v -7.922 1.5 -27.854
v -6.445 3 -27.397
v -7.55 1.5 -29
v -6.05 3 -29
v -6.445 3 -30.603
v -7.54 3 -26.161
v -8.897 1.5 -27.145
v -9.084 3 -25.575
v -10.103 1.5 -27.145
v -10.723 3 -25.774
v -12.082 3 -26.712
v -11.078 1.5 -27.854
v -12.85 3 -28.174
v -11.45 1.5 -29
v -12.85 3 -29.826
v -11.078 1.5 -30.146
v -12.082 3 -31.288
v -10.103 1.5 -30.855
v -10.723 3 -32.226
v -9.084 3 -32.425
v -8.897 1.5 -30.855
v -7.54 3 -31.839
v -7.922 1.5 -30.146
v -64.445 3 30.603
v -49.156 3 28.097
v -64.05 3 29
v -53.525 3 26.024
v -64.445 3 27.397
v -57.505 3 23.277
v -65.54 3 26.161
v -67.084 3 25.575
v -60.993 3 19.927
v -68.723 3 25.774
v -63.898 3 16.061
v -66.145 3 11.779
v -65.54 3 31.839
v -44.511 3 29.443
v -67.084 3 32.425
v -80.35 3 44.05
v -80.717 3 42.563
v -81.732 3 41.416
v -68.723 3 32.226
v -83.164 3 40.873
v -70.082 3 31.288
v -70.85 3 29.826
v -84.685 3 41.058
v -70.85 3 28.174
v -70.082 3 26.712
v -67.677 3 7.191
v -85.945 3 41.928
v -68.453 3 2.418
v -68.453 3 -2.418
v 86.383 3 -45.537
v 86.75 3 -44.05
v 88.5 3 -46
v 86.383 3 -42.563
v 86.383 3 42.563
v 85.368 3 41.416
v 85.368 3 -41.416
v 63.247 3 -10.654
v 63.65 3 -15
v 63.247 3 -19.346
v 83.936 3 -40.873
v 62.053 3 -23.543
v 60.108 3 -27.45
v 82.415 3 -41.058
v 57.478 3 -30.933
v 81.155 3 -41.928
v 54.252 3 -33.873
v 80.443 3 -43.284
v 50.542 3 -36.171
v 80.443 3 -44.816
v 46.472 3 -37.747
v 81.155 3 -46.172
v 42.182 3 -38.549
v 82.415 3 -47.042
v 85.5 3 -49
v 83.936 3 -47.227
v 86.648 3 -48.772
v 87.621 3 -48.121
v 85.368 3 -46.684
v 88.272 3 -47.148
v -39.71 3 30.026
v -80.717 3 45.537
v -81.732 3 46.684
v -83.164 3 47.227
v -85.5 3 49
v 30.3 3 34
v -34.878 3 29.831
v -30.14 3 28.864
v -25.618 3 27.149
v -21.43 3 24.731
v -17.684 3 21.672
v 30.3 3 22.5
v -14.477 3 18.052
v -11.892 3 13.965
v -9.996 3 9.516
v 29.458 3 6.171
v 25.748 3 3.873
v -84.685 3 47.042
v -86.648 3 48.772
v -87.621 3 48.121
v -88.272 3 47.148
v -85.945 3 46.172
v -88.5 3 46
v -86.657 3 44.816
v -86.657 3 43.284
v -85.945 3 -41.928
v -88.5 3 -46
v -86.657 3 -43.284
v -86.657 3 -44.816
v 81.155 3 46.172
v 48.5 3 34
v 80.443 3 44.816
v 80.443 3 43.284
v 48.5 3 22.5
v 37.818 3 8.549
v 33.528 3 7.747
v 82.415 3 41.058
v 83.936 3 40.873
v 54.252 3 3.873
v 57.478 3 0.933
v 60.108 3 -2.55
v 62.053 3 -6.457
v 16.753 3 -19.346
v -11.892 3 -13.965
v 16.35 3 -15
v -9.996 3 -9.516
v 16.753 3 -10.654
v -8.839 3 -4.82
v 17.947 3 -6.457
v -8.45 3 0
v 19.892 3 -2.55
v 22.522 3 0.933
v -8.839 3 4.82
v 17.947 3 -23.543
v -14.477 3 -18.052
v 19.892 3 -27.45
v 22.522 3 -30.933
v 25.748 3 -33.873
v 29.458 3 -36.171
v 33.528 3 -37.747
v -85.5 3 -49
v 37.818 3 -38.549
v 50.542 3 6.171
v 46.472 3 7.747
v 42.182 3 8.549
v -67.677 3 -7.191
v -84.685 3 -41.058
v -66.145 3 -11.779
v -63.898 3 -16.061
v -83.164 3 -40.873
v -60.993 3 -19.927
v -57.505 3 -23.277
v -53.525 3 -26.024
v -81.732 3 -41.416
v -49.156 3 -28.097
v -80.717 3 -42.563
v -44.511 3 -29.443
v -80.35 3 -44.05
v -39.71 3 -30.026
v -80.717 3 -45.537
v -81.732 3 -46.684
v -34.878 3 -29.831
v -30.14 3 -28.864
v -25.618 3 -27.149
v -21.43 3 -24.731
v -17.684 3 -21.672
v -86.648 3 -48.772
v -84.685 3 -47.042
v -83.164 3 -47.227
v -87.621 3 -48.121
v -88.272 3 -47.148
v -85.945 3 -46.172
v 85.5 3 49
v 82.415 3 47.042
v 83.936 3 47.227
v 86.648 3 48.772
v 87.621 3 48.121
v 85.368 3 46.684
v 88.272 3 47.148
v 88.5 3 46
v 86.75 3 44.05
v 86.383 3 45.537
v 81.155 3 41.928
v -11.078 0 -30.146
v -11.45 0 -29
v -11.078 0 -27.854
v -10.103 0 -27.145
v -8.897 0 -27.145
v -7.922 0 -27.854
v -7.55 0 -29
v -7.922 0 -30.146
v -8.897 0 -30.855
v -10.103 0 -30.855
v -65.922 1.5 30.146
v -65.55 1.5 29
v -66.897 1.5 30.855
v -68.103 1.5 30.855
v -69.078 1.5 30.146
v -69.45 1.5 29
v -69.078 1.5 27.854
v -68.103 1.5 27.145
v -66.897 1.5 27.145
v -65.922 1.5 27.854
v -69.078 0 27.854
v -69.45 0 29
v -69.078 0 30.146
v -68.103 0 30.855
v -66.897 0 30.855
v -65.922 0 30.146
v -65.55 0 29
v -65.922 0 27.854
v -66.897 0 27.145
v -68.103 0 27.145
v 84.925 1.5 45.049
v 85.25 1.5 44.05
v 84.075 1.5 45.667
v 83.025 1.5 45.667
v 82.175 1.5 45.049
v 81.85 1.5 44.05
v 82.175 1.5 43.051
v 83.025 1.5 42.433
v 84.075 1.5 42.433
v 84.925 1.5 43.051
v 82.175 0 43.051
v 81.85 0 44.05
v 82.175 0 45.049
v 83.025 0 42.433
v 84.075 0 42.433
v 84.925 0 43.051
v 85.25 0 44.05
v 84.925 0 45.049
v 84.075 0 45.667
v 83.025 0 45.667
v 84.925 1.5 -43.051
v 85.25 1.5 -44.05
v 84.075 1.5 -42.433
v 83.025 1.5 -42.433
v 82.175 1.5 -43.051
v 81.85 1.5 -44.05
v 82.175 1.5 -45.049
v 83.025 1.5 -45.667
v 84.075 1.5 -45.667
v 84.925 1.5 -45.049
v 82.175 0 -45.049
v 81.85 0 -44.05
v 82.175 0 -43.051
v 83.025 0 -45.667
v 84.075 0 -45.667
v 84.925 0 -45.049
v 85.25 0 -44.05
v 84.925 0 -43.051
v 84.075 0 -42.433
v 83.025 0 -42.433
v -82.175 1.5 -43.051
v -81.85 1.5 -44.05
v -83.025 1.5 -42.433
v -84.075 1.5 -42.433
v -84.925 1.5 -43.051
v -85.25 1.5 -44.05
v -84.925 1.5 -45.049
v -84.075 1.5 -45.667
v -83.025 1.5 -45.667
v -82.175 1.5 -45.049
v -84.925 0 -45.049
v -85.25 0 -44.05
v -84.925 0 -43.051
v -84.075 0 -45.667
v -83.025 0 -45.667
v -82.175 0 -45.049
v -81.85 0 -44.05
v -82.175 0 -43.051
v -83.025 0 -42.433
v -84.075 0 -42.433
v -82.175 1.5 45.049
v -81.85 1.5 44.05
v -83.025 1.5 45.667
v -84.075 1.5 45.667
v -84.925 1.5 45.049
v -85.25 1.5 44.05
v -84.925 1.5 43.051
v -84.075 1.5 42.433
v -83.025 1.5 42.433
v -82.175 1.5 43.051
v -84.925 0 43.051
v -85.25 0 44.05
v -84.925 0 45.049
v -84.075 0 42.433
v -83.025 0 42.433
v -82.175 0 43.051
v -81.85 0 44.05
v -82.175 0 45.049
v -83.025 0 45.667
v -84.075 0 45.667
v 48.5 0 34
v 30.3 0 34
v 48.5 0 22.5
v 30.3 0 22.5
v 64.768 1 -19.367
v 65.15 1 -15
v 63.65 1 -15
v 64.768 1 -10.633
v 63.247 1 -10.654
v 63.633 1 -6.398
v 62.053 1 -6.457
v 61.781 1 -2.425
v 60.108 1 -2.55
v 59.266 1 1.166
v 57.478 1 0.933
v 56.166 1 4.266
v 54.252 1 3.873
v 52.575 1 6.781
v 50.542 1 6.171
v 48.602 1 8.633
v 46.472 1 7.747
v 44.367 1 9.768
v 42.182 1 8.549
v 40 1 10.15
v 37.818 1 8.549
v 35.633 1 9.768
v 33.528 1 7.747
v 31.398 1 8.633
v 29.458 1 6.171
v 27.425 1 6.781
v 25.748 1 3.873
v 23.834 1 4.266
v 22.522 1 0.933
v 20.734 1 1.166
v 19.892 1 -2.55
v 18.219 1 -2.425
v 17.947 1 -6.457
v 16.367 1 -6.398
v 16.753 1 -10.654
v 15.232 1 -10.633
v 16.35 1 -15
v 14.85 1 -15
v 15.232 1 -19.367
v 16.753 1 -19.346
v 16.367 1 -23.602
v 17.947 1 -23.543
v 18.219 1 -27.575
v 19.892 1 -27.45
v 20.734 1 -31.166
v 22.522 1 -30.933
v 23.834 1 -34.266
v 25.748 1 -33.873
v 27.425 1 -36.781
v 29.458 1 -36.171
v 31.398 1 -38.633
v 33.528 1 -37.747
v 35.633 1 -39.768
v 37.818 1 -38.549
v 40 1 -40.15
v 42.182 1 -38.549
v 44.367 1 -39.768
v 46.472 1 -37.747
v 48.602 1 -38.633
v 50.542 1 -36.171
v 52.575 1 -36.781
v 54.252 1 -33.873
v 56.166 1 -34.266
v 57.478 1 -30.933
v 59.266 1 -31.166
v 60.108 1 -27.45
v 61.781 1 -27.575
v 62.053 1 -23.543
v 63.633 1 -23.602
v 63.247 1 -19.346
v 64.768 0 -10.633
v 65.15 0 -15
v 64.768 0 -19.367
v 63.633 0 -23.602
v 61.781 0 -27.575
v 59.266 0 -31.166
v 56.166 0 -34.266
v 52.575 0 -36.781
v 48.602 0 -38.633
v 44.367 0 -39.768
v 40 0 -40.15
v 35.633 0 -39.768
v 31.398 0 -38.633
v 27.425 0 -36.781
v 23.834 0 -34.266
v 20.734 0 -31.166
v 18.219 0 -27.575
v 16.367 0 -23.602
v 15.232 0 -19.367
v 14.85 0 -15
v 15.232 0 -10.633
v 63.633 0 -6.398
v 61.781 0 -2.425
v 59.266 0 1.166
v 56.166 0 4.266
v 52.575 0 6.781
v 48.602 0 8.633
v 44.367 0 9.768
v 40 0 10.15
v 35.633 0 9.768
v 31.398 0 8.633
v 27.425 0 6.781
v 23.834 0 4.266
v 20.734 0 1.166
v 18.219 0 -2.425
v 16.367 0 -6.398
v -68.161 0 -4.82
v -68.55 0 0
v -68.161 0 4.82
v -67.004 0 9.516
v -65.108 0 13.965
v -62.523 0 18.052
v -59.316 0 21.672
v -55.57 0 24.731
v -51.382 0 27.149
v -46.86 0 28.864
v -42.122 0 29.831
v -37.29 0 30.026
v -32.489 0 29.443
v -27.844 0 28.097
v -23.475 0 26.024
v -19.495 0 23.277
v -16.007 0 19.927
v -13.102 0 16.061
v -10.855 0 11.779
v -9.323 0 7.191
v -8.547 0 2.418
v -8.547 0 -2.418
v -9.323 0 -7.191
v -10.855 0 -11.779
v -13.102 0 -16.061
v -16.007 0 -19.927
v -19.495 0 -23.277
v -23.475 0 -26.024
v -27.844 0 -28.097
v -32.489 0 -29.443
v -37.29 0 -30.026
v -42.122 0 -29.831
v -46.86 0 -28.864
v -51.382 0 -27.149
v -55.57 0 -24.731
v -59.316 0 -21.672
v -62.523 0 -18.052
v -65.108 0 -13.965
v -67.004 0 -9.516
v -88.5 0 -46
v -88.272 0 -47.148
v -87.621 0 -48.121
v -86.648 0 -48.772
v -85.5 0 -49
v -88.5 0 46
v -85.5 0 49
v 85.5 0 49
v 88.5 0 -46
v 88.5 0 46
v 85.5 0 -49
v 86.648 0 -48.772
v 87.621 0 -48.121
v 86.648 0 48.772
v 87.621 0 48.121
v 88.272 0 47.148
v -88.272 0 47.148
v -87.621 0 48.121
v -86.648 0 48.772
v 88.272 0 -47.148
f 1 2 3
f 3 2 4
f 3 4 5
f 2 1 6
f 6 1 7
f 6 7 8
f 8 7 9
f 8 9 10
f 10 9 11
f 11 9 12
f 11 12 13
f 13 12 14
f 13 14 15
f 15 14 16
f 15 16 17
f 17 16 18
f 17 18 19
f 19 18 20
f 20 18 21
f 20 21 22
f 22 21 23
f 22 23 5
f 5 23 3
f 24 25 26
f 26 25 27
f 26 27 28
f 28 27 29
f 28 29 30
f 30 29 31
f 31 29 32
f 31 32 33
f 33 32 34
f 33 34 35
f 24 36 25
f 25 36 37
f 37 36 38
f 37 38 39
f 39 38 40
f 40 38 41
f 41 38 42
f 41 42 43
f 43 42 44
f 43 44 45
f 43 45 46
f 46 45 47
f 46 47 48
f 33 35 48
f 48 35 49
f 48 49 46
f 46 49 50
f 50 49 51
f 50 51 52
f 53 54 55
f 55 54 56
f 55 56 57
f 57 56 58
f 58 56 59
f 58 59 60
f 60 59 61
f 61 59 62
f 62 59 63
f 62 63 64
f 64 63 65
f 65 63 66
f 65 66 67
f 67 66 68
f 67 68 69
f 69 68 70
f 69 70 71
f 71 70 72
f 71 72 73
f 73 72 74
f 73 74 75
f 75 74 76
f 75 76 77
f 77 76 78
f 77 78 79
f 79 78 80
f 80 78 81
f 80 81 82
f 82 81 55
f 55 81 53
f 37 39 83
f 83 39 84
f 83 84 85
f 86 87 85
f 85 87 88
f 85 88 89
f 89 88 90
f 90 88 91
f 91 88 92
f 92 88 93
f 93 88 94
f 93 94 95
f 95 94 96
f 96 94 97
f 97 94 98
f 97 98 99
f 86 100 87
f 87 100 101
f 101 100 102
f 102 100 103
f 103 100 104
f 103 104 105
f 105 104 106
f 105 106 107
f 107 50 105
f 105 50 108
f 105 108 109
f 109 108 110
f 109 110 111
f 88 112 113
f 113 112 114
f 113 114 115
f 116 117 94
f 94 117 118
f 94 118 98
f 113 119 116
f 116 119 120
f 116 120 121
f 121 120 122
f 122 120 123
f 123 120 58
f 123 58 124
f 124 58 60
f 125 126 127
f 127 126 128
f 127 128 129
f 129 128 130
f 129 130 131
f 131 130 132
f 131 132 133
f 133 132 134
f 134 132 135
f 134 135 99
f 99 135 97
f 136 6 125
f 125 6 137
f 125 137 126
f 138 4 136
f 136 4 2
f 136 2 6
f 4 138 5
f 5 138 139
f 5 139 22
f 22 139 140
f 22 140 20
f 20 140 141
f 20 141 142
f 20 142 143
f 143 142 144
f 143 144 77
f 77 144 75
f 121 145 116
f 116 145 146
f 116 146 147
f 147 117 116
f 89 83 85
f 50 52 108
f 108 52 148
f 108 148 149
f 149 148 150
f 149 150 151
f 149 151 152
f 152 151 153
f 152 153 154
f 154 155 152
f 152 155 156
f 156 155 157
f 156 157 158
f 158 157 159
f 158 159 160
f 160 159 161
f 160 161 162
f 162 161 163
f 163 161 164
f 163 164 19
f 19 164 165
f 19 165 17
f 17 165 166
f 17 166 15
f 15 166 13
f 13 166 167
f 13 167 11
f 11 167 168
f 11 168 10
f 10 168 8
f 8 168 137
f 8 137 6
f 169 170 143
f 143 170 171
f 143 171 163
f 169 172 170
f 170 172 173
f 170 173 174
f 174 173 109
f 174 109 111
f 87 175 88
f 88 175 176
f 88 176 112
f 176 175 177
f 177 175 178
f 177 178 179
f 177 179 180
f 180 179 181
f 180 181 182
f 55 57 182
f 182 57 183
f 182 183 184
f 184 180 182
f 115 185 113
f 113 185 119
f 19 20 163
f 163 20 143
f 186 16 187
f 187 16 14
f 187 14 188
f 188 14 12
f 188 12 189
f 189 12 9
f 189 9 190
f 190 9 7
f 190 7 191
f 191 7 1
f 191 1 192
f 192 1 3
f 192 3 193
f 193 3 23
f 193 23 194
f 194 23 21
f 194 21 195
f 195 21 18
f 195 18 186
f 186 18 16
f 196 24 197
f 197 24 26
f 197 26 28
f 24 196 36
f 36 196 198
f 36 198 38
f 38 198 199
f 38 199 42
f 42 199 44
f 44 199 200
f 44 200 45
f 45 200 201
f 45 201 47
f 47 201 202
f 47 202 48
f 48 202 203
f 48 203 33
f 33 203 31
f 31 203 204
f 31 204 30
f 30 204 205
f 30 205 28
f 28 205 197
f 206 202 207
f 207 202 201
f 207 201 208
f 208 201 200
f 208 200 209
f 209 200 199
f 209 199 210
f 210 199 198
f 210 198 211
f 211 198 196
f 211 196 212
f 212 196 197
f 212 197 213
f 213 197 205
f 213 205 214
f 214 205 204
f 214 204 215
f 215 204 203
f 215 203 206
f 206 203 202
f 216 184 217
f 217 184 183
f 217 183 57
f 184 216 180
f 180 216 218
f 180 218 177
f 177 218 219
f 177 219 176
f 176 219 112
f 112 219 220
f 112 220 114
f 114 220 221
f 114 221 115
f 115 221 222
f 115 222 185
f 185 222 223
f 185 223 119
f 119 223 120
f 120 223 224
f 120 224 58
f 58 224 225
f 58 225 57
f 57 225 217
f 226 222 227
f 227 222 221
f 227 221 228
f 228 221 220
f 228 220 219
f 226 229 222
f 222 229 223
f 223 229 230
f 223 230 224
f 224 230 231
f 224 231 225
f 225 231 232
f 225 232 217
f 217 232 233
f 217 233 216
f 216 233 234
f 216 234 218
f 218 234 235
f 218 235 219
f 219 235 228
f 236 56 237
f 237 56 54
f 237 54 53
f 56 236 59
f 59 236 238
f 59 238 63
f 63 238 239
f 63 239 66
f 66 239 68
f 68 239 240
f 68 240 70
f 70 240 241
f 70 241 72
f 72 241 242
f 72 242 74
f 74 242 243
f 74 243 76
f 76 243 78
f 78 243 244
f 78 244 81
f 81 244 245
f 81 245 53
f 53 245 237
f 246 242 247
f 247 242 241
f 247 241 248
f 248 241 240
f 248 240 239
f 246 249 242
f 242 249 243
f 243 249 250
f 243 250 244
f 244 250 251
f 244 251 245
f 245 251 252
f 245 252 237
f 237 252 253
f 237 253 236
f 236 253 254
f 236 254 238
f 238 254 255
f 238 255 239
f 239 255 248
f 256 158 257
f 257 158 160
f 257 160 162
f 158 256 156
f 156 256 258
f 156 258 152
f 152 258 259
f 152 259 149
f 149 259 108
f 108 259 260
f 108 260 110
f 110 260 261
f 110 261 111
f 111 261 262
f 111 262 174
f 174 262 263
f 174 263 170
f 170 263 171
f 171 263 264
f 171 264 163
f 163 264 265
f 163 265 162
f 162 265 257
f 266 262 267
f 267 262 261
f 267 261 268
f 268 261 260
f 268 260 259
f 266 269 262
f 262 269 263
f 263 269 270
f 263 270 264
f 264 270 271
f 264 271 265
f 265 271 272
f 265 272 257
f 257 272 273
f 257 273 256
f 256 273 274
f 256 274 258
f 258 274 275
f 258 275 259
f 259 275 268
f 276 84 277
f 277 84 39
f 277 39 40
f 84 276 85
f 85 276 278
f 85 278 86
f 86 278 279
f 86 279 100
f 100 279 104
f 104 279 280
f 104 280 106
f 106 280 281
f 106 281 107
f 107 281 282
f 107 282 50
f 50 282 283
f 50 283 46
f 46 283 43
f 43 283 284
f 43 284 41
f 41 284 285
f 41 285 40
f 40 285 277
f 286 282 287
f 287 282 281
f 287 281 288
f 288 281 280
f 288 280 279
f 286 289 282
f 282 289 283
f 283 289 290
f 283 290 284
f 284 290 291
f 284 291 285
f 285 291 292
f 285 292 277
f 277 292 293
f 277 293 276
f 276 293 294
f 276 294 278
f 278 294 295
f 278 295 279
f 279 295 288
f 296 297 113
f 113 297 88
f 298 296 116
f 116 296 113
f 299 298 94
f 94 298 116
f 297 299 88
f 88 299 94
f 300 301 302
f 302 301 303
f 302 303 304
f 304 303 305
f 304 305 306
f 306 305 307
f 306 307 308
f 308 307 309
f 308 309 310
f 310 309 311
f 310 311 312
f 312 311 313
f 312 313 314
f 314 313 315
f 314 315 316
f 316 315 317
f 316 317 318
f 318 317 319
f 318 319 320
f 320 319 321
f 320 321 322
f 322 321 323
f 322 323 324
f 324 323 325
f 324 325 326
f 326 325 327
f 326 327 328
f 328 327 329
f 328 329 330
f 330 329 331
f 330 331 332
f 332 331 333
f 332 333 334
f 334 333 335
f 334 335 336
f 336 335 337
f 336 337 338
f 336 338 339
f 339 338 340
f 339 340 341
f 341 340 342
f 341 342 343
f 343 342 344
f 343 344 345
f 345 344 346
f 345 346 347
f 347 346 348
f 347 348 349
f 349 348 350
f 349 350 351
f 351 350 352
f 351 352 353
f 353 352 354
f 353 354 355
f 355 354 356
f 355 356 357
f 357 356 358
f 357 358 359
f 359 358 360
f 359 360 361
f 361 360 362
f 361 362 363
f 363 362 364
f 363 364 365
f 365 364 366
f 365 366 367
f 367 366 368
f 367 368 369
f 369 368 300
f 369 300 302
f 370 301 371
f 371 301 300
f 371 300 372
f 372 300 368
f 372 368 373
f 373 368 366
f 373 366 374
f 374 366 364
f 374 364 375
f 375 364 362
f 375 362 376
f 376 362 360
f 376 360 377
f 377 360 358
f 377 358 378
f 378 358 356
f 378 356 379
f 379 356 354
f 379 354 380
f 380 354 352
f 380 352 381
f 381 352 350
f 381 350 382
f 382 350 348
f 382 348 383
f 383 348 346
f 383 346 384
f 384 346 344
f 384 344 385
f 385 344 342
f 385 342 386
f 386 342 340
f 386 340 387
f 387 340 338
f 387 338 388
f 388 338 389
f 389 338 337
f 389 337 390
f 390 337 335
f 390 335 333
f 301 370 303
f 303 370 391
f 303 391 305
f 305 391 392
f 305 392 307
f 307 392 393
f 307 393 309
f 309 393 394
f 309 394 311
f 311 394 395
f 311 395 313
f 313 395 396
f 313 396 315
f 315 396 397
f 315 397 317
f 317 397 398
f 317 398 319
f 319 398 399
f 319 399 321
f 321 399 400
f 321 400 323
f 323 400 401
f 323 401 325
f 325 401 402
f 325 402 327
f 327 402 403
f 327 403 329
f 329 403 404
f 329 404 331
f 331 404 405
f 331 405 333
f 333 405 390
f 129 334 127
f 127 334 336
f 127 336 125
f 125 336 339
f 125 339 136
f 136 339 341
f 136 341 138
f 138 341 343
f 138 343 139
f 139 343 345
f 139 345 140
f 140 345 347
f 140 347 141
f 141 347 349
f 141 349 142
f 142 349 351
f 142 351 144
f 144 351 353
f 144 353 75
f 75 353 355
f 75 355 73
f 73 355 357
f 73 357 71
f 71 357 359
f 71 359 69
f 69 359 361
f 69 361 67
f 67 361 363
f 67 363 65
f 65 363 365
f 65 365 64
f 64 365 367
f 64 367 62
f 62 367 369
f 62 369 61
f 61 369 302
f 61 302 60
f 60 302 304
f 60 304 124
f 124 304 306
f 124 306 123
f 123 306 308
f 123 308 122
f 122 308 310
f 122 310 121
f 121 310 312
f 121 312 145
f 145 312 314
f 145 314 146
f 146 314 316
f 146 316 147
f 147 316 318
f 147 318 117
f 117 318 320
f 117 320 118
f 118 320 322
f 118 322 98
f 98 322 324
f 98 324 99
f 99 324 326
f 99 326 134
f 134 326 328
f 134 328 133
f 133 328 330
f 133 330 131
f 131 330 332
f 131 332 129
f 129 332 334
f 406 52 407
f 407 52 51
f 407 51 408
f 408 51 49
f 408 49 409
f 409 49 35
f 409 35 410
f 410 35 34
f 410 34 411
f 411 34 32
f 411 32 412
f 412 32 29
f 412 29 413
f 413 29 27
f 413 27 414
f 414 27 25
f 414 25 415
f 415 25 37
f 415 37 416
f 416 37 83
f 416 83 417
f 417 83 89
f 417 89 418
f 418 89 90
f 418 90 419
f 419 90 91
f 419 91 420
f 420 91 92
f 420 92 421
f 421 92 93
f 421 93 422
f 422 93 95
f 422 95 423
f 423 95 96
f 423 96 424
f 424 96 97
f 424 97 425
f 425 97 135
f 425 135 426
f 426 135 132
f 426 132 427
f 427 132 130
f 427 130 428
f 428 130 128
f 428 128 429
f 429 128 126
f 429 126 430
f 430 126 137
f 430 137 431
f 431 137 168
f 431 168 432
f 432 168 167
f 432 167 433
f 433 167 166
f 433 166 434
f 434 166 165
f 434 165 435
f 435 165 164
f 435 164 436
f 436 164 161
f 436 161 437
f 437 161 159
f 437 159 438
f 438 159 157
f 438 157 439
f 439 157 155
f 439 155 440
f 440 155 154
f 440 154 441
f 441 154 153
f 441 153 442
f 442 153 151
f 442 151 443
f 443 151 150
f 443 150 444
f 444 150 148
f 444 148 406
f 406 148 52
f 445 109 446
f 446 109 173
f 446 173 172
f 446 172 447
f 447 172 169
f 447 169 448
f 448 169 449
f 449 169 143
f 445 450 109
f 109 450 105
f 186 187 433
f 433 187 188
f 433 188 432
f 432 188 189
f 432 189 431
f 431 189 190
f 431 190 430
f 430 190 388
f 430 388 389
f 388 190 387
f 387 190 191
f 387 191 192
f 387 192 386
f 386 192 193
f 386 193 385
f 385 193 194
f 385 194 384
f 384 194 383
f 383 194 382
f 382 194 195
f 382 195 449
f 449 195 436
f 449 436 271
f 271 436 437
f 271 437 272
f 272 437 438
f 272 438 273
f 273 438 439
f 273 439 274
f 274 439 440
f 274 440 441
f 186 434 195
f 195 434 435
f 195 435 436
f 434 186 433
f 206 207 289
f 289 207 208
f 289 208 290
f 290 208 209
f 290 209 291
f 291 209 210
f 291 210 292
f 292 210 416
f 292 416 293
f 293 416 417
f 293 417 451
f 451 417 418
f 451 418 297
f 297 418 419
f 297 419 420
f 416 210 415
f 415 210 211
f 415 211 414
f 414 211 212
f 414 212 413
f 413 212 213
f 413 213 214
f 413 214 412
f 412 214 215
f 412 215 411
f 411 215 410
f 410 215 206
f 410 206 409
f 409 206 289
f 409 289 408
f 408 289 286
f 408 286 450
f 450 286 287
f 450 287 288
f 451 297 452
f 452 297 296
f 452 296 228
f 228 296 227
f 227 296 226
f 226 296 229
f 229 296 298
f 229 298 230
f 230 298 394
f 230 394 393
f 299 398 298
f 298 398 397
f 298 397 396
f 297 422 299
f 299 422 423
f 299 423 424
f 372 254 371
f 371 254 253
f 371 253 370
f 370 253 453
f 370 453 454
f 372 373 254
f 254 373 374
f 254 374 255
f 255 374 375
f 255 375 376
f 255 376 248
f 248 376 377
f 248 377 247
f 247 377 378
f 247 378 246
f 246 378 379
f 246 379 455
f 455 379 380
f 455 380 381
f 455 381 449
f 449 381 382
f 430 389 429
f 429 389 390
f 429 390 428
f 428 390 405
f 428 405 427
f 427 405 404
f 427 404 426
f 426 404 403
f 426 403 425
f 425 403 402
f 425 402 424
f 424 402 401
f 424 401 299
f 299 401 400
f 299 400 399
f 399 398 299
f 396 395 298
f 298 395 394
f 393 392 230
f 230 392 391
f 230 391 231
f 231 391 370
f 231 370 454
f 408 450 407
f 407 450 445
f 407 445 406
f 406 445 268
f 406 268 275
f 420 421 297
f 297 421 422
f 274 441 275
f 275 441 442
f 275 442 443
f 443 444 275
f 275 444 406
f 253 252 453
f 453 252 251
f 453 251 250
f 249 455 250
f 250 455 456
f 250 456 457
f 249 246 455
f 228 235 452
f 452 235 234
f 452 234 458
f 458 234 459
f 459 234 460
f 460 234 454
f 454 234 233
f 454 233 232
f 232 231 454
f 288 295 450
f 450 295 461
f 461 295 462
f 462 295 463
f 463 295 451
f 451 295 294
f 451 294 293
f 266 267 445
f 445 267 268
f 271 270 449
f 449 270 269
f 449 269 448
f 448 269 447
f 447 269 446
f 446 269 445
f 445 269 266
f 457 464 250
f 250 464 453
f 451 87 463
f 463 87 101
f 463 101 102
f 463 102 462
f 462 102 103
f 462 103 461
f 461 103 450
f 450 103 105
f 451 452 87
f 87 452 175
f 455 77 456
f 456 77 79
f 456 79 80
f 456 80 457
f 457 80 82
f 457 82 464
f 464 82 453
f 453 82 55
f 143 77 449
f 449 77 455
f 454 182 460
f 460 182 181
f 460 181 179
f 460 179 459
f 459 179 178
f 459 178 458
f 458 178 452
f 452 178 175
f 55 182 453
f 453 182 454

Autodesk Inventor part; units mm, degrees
ref_plane "YZ Plane" through (0, 0, 0) normal (1, 0, 0) x (0, 1, 0)
ref_plane "XZ Plane" through (0, 0, 0) normal (0, 1, 0) x (-1, 0, 0)
ref_plane "XY Plane" through (0, 0, 0) normal (0, 0, 1) x (1, 0, 0)
sketch "Náčrt1" plane through (0, 0, 0) normal (0, 1, 0) x (-1, 0, 0)
  line L0 (0, -68.6) -> (0, 68.6) projected
  line L1 (-123.9, 0) -> (123.9, 0) projected
  line L2 (88.5, -49) -> (-88.5, -49)
  line L3 (-88.5, -49) -> (-88.5, 49)
  line L4 (-88.5, 49) -> (88.5, 49)
  line L5 (88.5, 49) -> (88.5, -49)
  point P0 (0, 0)
  dimension "d0" = 177
  dimension "d1" = 98
extrude "Vysunutí1" add sketch "Náčrt1" along normal blind 3
sketch "Náčrt2" plane through (0, 3, 0) normal (0, 1, 0) x (1, 0, 0)
  line L0 (0, 68.6) -> (0, -68.6) projected
  line L1 (123.9, 0) -> (-123.9, 0) projected
  point P0 (0, 0)
  point P1 (-83.55, 44.05)
  point P2 (-83.55, -44.05)
  point P3 (83.55, -44.05)
  point P4 (83.55, 44.05)
  dimension "d4" = 88.1
  dimension "d5" = 167.1
  dimension "d6" = 88.1
  dimension "d7" = 167.1
hole "Díra1" at (-83.55, 3, -44.05) at (-83.55, 3, 44.05) at (83.55, 3, 44.05) at (83.55, 3, -44.05) direction (0, -1, 0) diameter 3.4 end through all clearance for "Šroub se zápustnou hlavou ISO 2009/7046" size "M3" standard "ISO"
fillet "Zaoblení1" radius 3 4 edges at (88.5, 1.5, 49) (88.5, 1.5, -49) (-88.5, 1.5, 49) (-88.5, 1.5, -49)
sketch "Náčrt3" plane through (0, 3, 0) normal (0, 1, 0) x (1, 0, 0)
  line L0 (123.9, 0) -> (-123.9, 0) projected
  line L1 (-88.5, 46) -> (-88.5, -46) projected
  point P0 (0, 0)
  point P1 (-38.5, 0)
  dimension "d21" = 50
hole "Díra2" at (-38.5, 3, 0) direction (0, -1, 0) diameter 60.1 end through all
sketch "Náčrt4" plane through (0, 0, 0) normal (0, -1, 0) x (1, 0, 0)
  line L0 (0, 68.6) -> (0, -68.6) projected
  line L1 (-123.9, 0) -> (123.9, 0) projected
  point P0 (0, 0)
  point P1 (40, -15)
  dimension "d29" = 40
  dimension "d38" = 15
hole "Díra3" at (40, 0, -15) direction (0, 1, 0) diameter 47.3 end through all counterbore diameter 50.3 counterbore depth 1
sketch "Náčrt5" plane through (0, 3, 0) normal (0, 1, 0) x (1, 0, 0)
  line L0 (30.3, -22.5) -> (48.5, -22.5)
  line L1 (48.5, -22.5) -> (48.5, -34)
  line L2 (48.5, -34) -> (30.3, -34)
  line L3 (30.3, -34) -> (30.3, -22.5)
  line L4 (-85.5, -49) -> (85.5, -49) projected
  line L5 (88.5, -46) -> (88.5, 46) projected
  point P0 (0, 0)
  dimension "d39" = 18.2
  dimension "d40" = 11.5
  dimension "d41" = 15
  dimension "d43" = 40
extrude "Vysunutí2" cut sketch "Náčrt5" against normal up to surface (3 mm away)
sketch "Náčrt6" plane through (0, 3, 0) normal (0, 1, 0) x (1, 0, 0)
  line L0 (123.9, 0) -> (-123.9, 0) projected
  line L1 (0, 68.6) -> (0, -68.6) projected
  circle A0 centre (-38.5, 0) radius 30.05 projected
  point P0 (0, 0)
  point P1 (-67.5, -29)
  point P2 (-9.5, 29)
  dimension "d46" = 29
  dimension "d49" = 29
  dimension "d57" = 29
  dimension "d58" = 29
hole "Díra4" at (-67.5, 3, 29) at (-9.5, 3, -29) direction (0, -1, 0) diameter 3.9 end through all
chamfer "Zkosení1" distance 1.5 angle 45 6 edges at (83.55, 3, -45.75) (-83.55, 3, -45.75) (83.55, 3, 42.35) (-83.55, 3, 42.35) (-9.5, 3, -30.95) (-67.5, 3, 27.05)
properties part number "4.L - GM - 01.02" material "LCP plast"
